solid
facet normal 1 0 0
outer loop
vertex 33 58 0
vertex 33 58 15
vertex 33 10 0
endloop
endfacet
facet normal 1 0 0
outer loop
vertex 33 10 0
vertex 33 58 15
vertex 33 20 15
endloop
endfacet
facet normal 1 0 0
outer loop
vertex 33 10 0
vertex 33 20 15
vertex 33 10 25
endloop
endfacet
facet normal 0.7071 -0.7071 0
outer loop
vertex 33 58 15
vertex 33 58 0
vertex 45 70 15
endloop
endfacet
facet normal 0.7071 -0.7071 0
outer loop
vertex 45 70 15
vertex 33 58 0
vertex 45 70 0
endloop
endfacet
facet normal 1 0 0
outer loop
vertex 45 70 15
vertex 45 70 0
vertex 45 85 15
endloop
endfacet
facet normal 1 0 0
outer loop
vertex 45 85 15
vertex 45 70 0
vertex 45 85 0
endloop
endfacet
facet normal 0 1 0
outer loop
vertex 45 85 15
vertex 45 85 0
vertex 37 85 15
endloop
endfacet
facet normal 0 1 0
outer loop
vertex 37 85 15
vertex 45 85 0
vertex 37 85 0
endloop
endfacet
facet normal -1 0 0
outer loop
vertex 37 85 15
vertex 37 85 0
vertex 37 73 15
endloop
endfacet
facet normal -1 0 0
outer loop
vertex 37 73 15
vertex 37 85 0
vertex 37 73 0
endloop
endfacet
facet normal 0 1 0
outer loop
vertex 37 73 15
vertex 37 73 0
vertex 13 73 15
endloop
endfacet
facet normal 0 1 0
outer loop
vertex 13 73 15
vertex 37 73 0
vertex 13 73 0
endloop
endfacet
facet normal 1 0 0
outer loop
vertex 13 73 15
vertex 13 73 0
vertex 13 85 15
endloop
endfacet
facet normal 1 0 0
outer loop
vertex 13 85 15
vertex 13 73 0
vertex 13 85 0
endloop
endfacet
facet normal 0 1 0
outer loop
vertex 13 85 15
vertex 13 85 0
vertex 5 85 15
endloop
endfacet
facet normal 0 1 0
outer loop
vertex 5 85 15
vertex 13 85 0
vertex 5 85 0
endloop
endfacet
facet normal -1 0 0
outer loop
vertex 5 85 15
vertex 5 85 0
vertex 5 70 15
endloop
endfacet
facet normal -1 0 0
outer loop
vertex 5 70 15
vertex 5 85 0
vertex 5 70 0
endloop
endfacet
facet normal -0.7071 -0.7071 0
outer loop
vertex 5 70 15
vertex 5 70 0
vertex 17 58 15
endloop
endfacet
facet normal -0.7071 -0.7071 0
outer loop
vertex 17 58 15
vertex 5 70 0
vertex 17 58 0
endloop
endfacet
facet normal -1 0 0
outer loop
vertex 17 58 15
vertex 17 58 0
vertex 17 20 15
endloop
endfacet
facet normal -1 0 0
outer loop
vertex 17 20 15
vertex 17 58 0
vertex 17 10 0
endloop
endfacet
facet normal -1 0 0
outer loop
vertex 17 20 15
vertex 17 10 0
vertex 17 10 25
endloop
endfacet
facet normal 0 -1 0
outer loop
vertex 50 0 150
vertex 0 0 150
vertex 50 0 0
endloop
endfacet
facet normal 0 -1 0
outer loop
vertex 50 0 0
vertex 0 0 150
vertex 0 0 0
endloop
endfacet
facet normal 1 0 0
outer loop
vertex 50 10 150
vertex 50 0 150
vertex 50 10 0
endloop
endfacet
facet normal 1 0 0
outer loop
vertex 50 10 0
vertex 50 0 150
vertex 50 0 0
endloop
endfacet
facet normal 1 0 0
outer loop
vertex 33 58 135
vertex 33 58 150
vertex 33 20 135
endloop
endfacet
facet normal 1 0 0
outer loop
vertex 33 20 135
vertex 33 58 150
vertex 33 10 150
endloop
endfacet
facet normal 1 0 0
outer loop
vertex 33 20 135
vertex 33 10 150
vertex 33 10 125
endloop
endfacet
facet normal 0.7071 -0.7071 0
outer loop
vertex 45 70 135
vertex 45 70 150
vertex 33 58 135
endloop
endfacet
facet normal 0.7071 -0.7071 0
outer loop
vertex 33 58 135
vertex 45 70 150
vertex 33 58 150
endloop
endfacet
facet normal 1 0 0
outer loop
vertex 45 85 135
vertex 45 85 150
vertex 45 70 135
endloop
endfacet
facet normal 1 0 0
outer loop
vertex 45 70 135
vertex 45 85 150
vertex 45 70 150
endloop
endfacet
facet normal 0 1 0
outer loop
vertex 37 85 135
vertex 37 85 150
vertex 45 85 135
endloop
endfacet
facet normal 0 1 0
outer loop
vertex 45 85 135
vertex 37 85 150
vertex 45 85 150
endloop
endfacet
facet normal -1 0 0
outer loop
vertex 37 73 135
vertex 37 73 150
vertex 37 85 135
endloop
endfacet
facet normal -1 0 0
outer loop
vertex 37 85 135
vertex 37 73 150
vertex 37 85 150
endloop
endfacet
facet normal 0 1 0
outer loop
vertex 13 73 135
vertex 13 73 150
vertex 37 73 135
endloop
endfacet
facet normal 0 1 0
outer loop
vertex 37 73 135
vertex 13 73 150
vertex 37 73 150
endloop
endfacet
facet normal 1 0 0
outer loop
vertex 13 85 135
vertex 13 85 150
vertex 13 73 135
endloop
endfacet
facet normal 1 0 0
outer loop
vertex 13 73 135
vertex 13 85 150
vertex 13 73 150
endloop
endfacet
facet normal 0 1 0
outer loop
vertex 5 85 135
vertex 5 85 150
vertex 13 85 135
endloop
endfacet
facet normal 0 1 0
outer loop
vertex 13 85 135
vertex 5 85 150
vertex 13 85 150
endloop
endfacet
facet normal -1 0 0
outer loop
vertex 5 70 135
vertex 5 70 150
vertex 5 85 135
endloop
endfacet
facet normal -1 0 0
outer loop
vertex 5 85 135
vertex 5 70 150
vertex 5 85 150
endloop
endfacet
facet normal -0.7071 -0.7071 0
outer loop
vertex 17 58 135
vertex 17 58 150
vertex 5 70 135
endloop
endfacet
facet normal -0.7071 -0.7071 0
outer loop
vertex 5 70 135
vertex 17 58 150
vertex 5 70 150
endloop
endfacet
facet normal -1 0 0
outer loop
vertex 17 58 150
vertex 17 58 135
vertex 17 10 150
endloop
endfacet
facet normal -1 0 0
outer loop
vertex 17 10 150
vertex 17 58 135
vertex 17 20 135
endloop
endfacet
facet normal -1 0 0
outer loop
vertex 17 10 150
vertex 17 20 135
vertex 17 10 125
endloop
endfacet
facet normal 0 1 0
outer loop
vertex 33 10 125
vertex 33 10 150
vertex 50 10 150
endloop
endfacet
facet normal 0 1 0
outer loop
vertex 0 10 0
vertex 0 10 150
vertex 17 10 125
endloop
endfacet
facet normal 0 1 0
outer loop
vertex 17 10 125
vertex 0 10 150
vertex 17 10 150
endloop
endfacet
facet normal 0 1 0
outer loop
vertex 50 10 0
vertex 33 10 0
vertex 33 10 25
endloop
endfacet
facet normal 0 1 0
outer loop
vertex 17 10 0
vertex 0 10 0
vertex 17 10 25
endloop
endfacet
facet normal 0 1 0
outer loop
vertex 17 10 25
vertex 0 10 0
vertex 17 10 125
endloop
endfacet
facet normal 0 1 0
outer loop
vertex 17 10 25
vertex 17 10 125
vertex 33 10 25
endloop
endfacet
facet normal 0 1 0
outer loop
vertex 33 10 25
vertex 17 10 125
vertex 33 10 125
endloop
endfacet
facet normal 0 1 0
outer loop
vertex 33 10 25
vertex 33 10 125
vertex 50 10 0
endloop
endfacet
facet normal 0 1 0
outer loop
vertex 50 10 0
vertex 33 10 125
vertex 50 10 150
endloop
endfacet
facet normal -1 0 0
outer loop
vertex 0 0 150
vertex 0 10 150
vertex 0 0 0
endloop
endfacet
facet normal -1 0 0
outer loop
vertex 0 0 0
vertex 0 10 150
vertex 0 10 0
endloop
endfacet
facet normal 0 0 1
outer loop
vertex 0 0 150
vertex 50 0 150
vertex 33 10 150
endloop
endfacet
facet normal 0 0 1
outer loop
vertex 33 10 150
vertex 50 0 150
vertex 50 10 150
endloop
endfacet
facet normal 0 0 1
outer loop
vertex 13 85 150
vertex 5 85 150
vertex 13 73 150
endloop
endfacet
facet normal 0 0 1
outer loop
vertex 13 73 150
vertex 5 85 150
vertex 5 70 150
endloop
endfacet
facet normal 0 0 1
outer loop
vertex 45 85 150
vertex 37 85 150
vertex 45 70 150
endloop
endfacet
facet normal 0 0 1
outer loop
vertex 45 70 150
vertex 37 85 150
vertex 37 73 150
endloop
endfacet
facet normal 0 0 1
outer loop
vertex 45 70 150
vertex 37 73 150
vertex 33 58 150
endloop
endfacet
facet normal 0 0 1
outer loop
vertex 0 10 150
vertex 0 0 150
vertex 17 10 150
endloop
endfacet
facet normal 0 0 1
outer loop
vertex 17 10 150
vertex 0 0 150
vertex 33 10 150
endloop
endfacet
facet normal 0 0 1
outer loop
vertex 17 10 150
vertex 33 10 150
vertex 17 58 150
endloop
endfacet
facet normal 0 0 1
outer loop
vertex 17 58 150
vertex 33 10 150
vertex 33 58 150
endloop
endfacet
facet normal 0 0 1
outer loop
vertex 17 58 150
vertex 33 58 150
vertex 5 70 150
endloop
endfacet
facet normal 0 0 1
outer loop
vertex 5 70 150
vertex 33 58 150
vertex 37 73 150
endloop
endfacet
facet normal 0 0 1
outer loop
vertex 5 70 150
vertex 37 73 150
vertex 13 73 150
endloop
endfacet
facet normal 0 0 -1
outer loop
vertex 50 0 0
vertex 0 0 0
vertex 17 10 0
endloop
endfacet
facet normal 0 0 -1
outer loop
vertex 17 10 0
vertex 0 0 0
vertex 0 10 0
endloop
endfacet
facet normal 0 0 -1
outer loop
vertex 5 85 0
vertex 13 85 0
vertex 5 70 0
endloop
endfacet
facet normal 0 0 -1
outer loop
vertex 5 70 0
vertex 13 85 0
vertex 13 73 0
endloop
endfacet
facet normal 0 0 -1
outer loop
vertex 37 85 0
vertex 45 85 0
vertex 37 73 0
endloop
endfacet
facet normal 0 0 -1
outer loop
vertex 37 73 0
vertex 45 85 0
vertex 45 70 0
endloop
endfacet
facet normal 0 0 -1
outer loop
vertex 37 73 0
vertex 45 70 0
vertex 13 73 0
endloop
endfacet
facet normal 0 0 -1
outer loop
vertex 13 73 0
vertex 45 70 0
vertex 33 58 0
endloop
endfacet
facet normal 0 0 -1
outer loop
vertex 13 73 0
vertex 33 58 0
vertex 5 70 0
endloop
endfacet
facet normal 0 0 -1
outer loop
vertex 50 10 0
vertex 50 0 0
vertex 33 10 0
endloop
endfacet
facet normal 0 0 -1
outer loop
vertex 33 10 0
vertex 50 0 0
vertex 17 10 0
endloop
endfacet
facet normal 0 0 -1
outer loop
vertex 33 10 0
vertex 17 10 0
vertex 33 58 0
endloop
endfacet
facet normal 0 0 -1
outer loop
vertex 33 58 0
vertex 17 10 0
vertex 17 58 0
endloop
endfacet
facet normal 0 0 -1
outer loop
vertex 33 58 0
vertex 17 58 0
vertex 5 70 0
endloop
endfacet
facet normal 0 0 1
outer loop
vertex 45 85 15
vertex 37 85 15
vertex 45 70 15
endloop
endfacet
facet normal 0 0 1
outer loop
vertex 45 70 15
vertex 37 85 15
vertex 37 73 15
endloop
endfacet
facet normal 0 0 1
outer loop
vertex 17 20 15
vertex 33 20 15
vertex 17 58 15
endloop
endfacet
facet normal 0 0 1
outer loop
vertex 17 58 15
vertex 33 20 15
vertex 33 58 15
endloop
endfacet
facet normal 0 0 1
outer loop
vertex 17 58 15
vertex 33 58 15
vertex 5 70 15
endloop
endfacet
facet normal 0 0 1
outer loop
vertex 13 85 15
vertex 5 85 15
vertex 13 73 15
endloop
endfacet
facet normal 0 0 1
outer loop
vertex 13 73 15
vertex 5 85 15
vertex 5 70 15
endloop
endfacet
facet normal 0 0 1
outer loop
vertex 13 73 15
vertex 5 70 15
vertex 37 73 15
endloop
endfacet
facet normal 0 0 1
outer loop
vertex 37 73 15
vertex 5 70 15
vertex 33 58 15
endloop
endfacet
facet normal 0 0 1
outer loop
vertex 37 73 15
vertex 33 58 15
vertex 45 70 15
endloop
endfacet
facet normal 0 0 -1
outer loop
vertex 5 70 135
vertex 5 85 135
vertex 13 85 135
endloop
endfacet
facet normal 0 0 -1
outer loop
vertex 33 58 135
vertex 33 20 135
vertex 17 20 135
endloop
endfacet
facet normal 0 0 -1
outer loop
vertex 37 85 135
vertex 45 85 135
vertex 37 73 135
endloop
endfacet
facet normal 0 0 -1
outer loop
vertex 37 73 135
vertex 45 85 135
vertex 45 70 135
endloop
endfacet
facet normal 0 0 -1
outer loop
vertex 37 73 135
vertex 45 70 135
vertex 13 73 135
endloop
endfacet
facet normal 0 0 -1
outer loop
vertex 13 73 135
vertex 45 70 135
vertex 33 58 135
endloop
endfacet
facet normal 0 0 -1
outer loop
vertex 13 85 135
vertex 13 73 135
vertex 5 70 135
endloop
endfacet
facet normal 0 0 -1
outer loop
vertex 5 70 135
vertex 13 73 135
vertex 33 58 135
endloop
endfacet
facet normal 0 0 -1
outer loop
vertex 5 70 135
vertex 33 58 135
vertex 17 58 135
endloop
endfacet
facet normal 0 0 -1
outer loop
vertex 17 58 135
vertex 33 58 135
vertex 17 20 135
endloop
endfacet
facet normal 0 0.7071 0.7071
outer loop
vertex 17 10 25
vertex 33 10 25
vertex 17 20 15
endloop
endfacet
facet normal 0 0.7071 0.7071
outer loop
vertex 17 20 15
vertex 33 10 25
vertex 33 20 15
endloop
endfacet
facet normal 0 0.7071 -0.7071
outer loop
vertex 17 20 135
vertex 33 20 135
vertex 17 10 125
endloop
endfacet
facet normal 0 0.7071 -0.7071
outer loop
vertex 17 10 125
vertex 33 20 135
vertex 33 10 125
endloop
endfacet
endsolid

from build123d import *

# Parameters (mm, degrees)
EXTRUDE_2_DEPTH     = 150
CUT_EXTRUDE_2_DEPTH = 180.51323071


with BuildPart() as part:
    # 草图3 → 凸台-拉伸2 (new body)
    with BuildSketch(Plane.XY):
        Polygon((0, 0), (0, 10), (17, 10), (17, 58), (5, 70), (5, 85), (13, 85), (13, 73), (37, 73), (37, 85), (45, 85), (45, 70), (33, 58), (33, 10), (50, 10), (50, 0), align=None)
    extrude(amount=EXTRUDE_2_DEPTH)

    # 草图4 → 切除-拉伸2 (cut, through all)
    with BuildSketch(Plane(origin=(50, 0, 0), x_dir=(0, 0, -1), z_dir=(1, 0, 0))):
        Polygon((-135, 85), (-135, 20), (-125, 10), (-25, 10), (-15, 20), (-15, 85), align=None)
    extrude(amount=-CUT_EXTRUDE_2_DEPTH, mode=Mode.SUBTRACT)


solid = part.part
